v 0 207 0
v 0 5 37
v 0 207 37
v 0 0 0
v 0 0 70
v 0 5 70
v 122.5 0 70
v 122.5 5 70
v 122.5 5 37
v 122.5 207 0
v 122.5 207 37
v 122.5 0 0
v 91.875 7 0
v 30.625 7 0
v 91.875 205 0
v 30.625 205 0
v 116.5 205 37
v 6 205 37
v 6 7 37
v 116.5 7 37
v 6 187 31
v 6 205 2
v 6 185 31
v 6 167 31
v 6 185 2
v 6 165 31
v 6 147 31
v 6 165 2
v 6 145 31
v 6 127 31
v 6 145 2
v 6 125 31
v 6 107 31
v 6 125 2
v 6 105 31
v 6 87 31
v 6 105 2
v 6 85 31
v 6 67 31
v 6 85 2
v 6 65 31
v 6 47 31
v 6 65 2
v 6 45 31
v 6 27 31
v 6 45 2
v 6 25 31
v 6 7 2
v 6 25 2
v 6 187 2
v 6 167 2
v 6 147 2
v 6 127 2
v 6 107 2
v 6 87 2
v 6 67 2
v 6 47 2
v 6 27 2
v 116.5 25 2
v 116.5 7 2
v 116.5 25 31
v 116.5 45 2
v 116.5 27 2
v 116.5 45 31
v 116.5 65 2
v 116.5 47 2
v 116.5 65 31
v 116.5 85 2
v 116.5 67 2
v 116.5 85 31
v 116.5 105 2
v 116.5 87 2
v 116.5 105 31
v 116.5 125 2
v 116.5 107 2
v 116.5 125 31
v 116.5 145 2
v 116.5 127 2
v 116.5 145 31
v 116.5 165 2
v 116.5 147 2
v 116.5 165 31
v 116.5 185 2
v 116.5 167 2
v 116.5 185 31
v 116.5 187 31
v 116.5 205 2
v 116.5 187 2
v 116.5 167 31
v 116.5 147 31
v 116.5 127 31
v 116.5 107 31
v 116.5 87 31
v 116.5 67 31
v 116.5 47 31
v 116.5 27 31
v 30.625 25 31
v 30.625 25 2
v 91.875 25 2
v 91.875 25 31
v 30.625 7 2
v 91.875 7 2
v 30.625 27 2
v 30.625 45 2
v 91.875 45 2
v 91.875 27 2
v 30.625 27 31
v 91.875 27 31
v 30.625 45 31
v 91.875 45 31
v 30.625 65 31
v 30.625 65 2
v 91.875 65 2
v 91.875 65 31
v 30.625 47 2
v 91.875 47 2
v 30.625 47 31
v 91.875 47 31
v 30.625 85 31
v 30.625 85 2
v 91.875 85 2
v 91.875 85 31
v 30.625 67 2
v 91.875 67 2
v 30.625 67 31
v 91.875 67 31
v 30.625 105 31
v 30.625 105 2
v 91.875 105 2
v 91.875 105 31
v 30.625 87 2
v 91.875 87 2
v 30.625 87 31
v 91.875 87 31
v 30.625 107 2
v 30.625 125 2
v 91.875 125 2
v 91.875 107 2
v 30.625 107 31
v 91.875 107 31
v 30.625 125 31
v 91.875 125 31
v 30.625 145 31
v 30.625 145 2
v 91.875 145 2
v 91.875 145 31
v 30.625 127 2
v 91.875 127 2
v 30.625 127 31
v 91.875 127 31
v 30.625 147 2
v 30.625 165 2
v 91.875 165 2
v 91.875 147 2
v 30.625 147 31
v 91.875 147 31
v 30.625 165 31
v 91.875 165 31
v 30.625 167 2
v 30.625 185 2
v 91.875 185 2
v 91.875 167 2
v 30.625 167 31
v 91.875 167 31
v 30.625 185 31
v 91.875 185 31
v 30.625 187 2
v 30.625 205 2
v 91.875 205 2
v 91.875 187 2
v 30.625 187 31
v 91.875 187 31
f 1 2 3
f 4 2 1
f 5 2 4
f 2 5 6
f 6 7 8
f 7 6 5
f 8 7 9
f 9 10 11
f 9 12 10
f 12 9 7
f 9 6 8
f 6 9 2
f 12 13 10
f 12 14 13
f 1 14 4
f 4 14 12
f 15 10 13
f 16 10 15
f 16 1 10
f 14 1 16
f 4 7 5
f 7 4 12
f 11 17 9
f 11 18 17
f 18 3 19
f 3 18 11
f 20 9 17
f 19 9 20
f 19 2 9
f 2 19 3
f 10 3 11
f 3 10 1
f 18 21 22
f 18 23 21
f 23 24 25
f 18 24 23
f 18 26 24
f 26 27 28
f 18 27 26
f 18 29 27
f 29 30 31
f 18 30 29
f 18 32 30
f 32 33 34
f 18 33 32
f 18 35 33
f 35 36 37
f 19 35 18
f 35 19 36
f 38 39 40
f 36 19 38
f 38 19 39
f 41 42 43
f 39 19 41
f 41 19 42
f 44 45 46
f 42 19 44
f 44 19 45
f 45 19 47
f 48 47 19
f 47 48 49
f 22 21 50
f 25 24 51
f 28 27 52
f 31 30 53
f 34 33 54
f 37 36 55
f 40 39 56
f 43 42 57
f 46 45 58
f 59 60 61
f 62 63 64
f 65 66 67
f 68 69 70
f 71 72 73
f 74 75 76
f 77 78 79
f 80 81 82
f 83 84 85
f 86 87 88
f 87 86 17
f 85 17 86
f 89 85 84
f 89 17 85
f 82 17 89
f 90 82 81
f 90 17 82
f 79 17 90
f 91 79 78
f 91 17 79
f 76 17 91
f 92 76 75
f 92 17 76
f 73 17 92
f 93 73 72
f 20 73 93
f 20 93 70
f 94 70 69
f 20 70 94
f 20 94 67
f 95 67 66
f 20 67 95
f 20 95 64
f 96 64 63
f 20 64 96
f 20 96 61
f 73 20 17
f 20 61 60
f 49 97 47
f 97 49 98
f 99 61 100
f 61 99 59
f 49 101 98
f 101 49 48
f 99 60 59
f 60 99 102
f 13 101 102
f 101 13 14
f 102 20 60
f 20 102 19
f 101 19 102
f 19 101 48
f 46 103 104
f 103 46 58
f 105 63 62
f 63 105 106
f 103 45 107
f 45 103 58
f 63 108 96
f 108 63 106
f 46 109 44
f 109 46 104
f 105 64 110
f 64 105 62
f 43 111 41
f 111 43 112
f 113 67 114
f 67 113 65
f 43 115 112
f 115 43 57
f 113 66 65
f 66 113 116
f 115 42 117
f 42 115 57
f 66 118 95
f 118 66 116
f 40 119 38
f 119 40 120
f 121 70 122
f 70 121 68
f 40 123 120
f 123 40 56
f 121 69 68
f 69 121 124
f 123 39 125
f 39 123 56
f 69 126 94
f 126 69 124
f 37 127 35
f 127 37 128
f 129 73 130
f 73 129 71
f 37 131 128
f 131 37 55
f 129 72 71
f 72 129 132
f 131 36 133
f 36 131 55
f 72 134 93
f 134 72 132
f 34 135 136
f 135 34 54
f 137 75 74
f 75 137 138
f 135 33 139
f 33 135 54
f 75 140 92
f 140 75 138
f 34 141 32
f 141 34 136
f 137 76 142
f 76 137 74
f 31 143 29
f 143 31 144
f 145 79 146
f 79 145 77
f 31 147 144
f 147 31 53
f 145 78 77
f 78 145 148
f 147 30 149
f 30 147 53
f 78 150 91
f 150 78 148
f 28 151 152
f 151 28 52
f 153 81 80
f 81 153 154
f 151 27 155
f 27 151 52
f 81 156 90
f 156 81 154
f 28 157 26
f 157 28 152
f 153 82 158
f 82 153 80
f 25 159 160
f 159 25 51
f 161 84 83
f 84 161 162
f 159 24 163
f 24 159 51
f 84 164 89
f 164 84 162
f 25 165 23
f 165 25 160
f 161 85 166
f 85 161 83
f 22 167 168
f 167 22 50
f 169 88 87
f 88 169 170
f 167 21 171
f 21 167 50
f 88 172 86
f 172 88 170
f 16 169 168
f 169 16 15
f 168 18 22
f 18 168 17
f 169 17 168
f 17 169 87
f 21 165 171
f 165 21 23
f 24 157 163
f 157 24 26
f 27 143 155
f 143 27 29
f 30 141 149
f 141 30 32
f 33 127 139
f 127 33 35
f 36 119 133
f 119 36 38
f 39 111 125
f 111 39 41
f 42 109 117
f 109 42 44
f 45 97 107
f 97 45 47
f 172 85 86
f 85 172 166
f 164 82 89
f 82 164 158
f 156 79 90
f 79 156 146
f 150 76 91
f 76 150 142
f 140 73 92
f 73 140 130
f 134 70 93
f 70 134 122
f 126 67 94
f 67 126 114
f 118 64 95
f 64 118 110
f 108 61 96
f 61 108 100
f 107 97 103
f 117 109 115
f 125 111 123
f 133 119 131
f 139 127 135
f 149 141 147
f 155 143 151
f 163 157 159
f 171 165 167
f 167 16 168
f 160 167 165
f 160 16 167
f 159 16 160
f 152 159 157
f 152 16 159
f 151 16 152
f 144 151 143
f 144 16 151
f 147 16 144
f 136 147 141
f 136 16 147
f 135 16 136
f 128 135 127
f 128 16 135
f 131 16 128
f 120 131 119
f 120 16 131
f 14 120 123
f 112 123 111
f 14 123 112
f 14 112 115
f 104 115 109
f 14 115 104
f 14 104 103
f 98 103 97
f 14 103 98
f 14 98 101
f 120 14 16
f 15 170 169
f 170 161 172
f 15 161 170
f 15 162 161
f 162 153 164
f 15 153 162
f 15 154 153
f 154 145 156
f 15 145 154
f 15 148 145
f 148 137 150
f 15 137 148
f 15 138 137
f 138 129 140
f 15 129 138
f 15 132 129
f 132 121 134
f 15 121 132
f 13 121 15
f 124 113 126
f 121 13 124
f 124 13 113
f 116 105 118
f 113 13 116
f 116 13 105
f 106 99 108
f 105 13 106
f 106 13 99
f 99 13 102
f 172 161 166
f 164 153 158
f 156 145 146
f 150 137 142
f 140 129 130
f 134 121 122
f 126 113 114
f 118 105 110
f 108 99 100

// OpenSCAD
// Single Tower Casette Tape Holder
// by Nathan Wittstock <nate@fardog.io>

// preview[view:south east, tilt:top diagonal]

/* [Cassette] */
number_of_cassettes = 10; //[5:15]
x_tolerance = 1.5; //[1.0:3.0]
y_tolerance = 1.0; //[1.0:3.0]

/* [Hidden] */
case_height = 109.0 + x_tolerance;
case_width = 17.0 + y_tolerance;
case_depth = 70.0;
case_padding = 6;
foot_height = 5;

wall_thickness_min = 2;

case_pocket_height = case_depth - (case_depth / 2);
case_pocket_gap = wall_thickness_min;

base_height = case_pocket_height + wall_thickness_min;
base_depth = (case_width + case_pocket_gap) * number_of_cassettes + case_pocket_gap + foot_height;
base_width = case_height + (case_padding * 2);

echo(base_depth);

module base() {
	#cube([base_width, base_depth, base_height]);
}

module foot() {
	cube([base_width, foot_height, case_depth]);
}

module case_slots() {
	union() {
		for (i = [0:number_of_cassettes - 1]) {
			current_y = case_pocket_gap + ((case_width + case_pocket_gap) * i);
			translate([case_padding, current_y, base_height - case_pocket_height])
			cube([case_height, case_width, case_pocket_height + 1]);
		}
	}
}

module depth_cutout() {
	union() {
		translate([case_padding, case_padding, base_height - case_padding])
			cube([base_width - (case_padding * 2), base_depth - (case_padding * 2) - wall_thickness_min, case_padding * 2]);
		translate([base_width / 4, wall_thickness_min, 0])
			cube([base_width / 2, base_depth - foot_height - (wall_thickness_min * 2), case_pocket_height]);
	}
}

difference() {
	union() {
		foot();
		base();
	}
	translate([0, foot_height, 0]) {
		union() {
			case_slots();
			depth_cutout();
		}
	}
}
